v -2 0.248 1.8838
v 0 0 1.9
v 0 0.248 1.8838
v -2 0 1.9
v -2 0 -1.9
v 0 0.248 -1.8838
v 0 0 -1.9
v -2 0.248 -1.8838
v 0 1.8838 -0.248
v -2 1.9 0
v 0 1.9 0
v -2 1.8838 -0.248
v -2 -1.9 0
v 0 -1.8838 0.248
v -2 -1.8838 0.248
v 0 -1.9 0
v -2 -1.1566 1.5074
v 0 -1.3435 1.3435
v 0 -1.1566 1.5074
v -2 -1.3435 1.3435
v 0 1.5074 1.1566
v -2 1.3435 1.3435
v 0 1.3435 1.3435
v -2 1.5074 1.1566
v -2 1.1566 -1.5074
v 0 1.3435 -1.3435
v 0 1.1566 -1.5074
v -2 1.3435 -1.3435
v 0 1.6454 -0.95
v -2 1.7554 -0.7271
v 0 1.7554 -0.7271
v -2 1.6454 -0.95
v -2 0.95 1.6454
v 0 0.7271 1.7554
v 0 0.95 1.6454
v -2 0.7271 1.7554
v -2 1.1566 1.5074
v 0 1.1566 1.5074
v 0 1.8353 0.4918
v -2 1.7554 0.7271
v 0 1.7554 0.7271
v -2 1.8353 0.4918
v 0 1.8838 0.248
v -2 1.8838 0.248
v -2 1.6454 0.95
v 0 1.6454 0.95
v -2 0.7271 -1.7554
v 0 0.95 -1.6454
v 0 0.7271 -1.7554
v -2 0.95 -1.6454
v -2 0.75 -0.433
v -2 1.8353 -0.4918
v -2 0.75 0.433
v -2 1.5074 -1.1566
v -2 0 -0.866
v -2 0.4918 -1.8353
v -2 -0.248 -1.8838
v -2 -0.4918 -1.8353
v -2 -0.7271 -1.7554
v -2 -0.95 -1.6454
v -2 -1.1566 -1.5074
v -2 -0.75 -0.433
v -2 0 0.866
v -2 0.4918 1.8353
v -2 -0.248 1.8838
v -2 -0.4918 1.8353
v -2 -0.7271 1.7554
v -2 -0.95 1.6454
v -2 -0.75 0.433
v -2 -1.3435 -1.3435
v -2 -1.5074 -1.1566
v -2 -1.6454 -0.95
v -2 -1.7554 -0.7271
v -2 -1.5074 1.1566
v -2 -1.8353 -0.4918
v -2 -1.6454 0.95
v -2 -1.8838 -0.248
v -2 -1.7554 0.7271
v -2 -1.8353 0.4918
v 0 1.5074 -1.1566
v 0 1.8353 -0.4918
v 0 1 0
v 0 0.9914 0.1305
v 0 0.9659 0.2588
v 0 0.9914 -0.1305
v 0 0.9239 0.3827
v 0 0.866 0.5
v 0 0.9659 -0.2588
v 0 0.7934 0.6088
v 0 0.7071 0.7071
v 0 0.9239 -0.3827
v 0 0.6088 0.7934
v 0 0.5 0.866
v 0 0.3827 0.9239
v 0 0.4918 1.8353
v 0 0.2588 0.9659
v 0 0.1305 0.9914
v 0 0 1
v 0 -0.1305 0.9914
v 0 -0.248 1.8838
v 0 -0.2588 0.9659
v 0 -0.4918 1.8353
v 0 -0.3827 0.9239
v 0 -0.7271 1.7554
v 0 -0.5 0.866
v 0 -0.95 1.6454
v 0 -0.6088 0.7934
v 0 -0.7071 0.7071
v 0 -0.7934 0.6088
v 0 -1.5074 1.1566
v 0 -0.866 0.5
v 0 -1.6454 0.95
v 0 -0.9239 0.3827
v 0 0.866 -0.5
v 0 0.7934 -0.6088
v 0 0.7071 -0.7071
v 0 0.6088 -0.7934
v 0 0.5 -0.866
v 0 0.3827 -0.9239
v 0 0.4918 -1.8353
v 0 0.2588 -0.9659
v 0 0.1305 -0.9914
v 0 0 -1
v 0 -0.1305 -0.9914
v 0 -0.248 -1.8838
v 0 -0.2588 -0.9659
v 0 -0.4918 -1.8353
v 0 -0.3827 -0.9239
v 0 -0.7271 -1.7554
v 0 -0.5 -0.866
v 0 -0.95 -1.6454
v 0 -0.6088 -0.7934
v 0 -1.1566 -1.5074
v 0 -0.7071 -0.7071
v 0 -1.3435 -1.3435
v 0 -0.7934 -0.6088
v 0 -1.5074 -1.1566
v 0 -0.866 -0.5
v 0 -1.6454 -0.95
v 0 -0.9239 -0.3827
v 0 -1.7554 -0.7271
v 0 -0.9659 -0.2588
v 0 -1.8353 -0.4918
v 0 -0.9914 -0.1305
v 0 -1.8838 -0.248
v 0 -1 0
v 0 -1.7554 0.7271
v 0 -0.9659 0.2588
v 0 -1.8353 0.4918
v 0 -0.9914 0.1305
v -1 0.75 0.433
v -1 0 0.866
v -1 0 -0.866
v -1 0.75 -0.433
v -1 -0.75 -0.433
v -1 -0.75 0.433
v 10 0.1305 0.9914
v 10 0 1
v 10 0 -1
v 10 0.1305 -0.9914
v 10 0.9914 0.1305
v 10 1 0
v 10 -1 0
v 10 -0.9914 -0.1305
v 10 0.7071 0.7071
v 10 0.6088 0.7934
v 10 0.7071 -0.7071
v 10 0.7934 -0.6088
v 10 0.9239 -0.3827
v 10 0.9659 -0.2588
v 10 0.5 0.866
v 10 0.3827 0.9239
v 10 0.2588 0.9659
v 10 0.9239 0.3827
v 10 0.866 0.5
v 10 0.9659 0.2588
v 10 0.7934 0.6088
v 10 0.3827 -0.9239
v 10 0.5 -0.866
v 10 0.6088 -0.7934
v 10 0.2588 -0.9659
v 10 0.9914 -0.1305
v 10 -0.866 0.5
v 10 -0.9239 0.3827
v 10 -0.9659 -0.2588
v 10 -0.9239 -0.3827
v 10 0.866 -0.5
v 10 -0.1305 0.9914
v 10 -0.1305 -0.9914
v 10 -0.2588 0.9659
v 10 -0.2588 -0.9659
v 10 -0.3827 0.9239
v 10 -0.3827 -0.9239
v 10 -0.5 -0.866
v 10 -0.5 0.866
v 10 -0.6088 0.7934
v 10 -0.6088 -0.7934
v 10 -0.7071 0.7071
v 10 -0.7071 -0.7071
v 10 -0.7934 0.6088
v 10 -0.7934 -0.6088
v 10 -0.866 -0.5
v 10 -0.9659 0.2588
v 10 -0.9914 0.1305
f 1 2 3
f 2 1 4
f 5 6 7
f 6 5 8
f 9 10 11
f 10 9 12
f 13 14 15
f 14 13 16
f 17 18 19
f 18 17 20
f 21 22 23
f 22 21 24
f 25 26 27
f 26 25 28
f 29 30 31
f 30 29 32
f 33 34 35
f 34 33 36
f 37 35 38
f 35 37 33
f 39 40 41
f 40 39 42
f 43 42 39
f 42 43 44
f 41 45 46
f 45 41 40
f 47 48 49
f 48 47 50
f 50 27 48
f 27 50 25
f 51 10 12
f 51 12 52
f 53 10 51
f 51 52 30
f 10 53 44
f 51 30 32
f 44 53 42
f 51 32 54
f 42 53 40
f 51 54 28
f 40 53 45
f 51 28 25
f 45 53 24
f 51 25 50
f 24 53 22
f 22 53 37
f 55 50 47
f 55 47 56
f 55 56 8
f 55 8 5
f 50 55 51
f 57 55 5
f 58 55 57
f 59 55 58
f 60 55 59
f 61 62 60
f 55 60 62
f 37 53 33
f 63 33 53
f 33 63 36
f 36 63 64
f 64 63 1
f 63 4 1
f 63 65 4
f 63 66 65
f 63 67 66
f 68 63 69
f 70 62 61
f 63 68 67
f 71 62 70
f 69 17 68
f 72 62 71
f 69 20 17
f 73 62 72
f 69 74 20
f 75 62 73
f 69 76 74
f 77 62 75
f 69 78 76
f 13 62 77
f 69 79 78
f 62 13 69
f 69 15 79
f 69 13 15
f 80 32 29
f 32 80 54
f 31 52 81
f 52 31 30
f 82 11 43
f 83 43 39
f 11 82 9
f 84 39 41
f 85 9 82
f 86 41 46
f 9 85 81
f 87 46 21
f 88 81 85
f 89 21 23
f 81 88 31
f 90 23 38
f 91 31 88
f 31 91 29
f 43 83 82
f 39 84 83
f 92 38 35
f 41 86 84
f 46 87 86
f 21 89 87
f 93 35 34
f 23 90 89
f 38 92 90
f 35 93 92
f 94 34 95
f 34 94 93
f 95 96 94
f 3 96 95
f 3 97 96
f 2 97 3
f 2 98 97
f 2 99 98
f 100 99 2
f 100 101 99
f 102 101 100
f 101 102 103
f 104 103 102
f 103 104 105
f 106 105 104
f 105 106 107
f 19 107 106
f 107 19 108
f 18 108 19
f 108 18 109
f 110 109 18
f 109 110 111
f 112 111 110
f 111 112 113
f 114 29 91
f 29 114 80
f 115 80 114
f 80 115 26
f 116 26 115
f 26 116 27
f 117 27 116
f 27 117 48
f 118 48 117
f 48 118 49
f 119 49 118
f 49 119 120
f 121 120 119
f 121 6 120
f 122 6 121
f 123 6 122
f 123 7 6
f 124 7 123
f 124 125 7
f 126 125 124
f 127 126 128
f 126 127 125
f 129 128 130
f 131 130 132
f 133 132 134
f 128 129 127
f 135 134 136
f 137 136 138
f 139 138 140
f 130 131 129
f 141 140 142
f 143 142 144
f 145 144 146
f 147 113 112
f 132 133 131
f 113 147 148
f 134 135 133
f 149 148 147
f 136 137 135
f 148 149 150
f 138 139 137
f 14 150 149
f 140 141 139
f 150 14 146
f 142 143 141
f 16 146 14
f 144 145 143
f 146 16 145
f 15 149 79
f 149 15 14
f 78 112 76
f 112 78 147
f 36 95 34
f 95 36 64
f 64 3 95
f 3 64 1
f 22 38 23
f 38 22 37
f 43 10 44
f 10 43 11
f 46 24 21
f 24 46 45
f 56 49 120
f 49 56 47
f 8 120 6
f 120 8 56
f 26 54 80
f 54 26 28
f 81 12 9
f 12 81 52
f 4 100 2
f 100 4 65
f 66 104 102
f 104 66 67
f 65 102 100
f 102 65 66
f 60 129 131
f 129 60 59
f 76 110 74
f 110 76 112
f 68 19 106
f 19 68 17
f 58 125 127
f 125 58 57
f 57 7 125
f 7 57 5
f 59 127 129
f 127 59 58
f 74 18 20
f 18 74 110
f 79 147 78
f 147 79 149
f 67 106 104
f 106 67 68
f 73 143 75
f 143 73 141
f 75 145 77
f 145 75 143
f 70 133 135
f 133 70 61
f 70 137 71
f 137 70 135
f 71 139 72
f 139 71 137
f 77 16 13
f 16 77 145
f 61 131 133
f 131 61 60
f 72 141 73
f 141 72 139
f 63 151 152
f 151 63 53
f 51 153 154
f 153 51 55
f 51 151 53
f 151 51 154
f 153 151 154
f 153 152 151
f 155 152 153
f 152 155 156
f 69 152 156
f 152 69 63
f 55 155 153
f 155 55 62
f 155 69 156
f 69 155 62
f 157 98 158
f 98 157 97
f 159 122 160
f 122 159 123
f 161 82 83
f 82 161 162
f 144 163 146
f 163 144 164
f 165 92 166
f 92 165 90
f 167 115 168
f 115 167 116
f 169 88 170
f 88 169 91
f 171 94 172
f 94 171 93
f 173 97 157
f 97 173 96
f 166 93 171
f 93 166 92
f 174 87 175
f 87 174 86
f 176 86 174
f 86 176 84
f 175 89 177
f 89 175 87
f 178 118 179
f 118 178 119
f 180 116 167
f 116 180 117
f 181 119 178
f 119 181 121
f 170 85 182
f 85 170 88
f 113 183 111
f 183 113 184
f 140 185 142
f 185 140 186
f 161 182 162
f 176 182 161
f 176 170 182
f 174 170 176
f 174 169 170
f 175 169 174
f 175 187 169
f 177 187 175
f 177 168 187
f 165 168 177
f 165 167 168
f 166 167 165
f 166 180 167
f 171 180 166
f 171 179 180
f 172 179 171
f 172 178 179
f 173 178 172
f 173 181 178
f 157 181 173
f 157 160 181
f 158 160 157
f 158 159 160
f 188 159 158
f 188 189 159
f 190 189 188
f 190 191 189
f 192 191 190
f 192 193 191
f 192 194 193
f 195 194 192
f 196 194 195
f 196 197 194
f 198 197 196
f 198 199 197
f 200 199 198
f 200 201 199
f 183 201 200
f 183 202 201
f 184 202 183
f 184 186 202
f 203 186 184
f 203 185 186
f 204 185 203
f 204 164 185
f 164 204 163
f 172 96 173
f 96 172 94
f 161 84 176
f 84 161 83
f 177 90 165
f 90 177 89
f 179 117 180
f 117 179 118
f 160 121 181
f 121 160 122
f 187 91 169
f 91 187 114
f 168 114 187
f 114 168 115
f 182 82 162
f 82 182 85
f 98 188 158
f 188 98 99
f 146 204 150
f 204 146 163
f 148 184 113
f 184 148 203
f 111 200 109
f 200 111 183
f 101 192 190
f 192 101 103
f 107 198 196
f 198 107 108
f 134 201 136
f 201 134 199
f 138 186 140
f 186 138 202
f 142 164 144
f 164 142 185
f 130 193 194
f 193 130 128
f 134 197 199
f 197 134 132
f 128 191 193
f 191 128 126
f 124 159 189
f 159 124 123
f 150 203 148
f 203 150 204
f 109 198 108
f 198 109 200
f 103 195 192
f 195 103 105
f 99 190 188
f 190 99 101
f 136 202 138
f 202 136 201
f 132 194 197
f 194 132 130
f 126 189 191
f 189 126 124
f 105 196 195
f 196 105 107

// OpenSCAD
// file: ../../../lib/nutsnbolts/data-access.scad
// Norm Nuts and Bolts - a OpenSCAD library
// Copyright (C) 2012  Johannes Kneer

// This program is free software: you can redistribute it and/or modify
// it under the terms of the GNU General Public License as published by
// the Free Software Foundation, either version 3 of the License, or
// (at your option) any later version.

// This program is distributed in the hope that it will be useful,
// but WITHOUT ANY WARRANTY; without even the implied warranty of
// MERCHANTABILITY or FITNESS FOR A PARTICULAR PURPOSE.  See the
// GNU General Public License for more details.

// You should have received a copy of the GNU General Public License
// along with this program.  If not, see <http://www.gnu.org/licenses/>.


// DATABASE ACCESS FUNCTIONS AND CONSTANTS



// == CONSTANTS ==

// screw table access keys
_NB_S_DESC            = 0;
_NB_S_FAMKEY			    = 1;
_NB_S_LENGTH          = 2;
_NB_S_NOTHREAD_LENGTH = 3;

_NB_F_DESC			      = 0;
_NB_F_OUTER_DIA       = 1;
_NB_F_INNER_DIA       = 2;
_NB_F_LEAD            = 3;
_NB_F_KEY             = 4;
_NB_F_KEY_DEPTH       = 5;
_NB_F_HEAD_HEIGHT     = 6;
_NB_F_HEAD_DIA        = 7;
_NB_F_NUT_KEY         = 8;
_NB_F_NUT_HEIGHT      = 9;
_NB_F_PITCH_FINE      = 10;
_NB_F_PITCH_MEDIUM    = 11;
_NB_F_PITCH_COARSE    = 12;


// == FUNCTIONS ==

// _get_screw("descriptor")   with descriptor = M8x25
//   find the line for a general object in the data matrix

function _get_screw(n) = data_screw[search([n], data_screw)[0]];
function _get_screw_fam(n) = data_screw_fam[search([_get_screw(n)[_NB_S_FAMKEY]], data_screw_fam)[0]];

function _get_fam(n) = data_screw_fam[search([n], data_screw_fam)[0]];


// _get_XXXXX("descriptor") functions
// find a single property in the database

function _get_desc(n)        = _get_screw(n)[_NB_S_DESC];
function _get_famkey(n)         = _get_screw(n)[_NB_S_FAMKEY];
function _get_length(n)      = _get_screw(n)[_NB_S_LENGTH];
function _get_nt_length(n)   = _get_screw(n)[_NB_S_NOTHREAD_LENGTH];

function _get_outer_dia(n)   = _get_screw_fam(n)[_NB_F_OUTER_DIA];
function _get_inner_dia(n)   = _get_screw_fam(n)[_NB_F_INNER_DIA];
function _get_lead(n)        = _get_screw_fam(n)[_NB_F_LEAD];
function _get_head_height(n) = _get_screw_fam(n)[_NB_F_HEAD_HEIGHT];
function _get_head_dia(n)    = _get_screw_fam(n)[_NB_F_HEAD_DIA];
function _get_nut_key(n)     = _get_screw_fam(n)[_NB_F_NUT_KEY];
function _get_nut_height(n)  = _get_screw_fam(n)[_NB_F_NUT_HEIGHT];
function _get_fine_pitch(n)  = _get_screw_fam(n)[_NB_F_PITCH_FINE];
function _get_medium_pitch(n)  = _get_screw_fam(n)[_NB_F_PITCH_MEDIUM];
function _get_coarse_pitch(n)  = _get_screw_fam(n)[_NB_F_PITCH_COARSE];
// main file
/**********************************************************************************************************************
 **
 ** parts/vitamins/screw_M2x10.scad
 **
 ** This file renders a screw of the dimensions specified by the file name.
 **
 **********************************************************************************************************************/

include <../../../lib/nutsnbolts/cyl_head_bolt.scad>;

$fn = 48;
rotate([0, -90, 0])
	screw("M2x10"); 
